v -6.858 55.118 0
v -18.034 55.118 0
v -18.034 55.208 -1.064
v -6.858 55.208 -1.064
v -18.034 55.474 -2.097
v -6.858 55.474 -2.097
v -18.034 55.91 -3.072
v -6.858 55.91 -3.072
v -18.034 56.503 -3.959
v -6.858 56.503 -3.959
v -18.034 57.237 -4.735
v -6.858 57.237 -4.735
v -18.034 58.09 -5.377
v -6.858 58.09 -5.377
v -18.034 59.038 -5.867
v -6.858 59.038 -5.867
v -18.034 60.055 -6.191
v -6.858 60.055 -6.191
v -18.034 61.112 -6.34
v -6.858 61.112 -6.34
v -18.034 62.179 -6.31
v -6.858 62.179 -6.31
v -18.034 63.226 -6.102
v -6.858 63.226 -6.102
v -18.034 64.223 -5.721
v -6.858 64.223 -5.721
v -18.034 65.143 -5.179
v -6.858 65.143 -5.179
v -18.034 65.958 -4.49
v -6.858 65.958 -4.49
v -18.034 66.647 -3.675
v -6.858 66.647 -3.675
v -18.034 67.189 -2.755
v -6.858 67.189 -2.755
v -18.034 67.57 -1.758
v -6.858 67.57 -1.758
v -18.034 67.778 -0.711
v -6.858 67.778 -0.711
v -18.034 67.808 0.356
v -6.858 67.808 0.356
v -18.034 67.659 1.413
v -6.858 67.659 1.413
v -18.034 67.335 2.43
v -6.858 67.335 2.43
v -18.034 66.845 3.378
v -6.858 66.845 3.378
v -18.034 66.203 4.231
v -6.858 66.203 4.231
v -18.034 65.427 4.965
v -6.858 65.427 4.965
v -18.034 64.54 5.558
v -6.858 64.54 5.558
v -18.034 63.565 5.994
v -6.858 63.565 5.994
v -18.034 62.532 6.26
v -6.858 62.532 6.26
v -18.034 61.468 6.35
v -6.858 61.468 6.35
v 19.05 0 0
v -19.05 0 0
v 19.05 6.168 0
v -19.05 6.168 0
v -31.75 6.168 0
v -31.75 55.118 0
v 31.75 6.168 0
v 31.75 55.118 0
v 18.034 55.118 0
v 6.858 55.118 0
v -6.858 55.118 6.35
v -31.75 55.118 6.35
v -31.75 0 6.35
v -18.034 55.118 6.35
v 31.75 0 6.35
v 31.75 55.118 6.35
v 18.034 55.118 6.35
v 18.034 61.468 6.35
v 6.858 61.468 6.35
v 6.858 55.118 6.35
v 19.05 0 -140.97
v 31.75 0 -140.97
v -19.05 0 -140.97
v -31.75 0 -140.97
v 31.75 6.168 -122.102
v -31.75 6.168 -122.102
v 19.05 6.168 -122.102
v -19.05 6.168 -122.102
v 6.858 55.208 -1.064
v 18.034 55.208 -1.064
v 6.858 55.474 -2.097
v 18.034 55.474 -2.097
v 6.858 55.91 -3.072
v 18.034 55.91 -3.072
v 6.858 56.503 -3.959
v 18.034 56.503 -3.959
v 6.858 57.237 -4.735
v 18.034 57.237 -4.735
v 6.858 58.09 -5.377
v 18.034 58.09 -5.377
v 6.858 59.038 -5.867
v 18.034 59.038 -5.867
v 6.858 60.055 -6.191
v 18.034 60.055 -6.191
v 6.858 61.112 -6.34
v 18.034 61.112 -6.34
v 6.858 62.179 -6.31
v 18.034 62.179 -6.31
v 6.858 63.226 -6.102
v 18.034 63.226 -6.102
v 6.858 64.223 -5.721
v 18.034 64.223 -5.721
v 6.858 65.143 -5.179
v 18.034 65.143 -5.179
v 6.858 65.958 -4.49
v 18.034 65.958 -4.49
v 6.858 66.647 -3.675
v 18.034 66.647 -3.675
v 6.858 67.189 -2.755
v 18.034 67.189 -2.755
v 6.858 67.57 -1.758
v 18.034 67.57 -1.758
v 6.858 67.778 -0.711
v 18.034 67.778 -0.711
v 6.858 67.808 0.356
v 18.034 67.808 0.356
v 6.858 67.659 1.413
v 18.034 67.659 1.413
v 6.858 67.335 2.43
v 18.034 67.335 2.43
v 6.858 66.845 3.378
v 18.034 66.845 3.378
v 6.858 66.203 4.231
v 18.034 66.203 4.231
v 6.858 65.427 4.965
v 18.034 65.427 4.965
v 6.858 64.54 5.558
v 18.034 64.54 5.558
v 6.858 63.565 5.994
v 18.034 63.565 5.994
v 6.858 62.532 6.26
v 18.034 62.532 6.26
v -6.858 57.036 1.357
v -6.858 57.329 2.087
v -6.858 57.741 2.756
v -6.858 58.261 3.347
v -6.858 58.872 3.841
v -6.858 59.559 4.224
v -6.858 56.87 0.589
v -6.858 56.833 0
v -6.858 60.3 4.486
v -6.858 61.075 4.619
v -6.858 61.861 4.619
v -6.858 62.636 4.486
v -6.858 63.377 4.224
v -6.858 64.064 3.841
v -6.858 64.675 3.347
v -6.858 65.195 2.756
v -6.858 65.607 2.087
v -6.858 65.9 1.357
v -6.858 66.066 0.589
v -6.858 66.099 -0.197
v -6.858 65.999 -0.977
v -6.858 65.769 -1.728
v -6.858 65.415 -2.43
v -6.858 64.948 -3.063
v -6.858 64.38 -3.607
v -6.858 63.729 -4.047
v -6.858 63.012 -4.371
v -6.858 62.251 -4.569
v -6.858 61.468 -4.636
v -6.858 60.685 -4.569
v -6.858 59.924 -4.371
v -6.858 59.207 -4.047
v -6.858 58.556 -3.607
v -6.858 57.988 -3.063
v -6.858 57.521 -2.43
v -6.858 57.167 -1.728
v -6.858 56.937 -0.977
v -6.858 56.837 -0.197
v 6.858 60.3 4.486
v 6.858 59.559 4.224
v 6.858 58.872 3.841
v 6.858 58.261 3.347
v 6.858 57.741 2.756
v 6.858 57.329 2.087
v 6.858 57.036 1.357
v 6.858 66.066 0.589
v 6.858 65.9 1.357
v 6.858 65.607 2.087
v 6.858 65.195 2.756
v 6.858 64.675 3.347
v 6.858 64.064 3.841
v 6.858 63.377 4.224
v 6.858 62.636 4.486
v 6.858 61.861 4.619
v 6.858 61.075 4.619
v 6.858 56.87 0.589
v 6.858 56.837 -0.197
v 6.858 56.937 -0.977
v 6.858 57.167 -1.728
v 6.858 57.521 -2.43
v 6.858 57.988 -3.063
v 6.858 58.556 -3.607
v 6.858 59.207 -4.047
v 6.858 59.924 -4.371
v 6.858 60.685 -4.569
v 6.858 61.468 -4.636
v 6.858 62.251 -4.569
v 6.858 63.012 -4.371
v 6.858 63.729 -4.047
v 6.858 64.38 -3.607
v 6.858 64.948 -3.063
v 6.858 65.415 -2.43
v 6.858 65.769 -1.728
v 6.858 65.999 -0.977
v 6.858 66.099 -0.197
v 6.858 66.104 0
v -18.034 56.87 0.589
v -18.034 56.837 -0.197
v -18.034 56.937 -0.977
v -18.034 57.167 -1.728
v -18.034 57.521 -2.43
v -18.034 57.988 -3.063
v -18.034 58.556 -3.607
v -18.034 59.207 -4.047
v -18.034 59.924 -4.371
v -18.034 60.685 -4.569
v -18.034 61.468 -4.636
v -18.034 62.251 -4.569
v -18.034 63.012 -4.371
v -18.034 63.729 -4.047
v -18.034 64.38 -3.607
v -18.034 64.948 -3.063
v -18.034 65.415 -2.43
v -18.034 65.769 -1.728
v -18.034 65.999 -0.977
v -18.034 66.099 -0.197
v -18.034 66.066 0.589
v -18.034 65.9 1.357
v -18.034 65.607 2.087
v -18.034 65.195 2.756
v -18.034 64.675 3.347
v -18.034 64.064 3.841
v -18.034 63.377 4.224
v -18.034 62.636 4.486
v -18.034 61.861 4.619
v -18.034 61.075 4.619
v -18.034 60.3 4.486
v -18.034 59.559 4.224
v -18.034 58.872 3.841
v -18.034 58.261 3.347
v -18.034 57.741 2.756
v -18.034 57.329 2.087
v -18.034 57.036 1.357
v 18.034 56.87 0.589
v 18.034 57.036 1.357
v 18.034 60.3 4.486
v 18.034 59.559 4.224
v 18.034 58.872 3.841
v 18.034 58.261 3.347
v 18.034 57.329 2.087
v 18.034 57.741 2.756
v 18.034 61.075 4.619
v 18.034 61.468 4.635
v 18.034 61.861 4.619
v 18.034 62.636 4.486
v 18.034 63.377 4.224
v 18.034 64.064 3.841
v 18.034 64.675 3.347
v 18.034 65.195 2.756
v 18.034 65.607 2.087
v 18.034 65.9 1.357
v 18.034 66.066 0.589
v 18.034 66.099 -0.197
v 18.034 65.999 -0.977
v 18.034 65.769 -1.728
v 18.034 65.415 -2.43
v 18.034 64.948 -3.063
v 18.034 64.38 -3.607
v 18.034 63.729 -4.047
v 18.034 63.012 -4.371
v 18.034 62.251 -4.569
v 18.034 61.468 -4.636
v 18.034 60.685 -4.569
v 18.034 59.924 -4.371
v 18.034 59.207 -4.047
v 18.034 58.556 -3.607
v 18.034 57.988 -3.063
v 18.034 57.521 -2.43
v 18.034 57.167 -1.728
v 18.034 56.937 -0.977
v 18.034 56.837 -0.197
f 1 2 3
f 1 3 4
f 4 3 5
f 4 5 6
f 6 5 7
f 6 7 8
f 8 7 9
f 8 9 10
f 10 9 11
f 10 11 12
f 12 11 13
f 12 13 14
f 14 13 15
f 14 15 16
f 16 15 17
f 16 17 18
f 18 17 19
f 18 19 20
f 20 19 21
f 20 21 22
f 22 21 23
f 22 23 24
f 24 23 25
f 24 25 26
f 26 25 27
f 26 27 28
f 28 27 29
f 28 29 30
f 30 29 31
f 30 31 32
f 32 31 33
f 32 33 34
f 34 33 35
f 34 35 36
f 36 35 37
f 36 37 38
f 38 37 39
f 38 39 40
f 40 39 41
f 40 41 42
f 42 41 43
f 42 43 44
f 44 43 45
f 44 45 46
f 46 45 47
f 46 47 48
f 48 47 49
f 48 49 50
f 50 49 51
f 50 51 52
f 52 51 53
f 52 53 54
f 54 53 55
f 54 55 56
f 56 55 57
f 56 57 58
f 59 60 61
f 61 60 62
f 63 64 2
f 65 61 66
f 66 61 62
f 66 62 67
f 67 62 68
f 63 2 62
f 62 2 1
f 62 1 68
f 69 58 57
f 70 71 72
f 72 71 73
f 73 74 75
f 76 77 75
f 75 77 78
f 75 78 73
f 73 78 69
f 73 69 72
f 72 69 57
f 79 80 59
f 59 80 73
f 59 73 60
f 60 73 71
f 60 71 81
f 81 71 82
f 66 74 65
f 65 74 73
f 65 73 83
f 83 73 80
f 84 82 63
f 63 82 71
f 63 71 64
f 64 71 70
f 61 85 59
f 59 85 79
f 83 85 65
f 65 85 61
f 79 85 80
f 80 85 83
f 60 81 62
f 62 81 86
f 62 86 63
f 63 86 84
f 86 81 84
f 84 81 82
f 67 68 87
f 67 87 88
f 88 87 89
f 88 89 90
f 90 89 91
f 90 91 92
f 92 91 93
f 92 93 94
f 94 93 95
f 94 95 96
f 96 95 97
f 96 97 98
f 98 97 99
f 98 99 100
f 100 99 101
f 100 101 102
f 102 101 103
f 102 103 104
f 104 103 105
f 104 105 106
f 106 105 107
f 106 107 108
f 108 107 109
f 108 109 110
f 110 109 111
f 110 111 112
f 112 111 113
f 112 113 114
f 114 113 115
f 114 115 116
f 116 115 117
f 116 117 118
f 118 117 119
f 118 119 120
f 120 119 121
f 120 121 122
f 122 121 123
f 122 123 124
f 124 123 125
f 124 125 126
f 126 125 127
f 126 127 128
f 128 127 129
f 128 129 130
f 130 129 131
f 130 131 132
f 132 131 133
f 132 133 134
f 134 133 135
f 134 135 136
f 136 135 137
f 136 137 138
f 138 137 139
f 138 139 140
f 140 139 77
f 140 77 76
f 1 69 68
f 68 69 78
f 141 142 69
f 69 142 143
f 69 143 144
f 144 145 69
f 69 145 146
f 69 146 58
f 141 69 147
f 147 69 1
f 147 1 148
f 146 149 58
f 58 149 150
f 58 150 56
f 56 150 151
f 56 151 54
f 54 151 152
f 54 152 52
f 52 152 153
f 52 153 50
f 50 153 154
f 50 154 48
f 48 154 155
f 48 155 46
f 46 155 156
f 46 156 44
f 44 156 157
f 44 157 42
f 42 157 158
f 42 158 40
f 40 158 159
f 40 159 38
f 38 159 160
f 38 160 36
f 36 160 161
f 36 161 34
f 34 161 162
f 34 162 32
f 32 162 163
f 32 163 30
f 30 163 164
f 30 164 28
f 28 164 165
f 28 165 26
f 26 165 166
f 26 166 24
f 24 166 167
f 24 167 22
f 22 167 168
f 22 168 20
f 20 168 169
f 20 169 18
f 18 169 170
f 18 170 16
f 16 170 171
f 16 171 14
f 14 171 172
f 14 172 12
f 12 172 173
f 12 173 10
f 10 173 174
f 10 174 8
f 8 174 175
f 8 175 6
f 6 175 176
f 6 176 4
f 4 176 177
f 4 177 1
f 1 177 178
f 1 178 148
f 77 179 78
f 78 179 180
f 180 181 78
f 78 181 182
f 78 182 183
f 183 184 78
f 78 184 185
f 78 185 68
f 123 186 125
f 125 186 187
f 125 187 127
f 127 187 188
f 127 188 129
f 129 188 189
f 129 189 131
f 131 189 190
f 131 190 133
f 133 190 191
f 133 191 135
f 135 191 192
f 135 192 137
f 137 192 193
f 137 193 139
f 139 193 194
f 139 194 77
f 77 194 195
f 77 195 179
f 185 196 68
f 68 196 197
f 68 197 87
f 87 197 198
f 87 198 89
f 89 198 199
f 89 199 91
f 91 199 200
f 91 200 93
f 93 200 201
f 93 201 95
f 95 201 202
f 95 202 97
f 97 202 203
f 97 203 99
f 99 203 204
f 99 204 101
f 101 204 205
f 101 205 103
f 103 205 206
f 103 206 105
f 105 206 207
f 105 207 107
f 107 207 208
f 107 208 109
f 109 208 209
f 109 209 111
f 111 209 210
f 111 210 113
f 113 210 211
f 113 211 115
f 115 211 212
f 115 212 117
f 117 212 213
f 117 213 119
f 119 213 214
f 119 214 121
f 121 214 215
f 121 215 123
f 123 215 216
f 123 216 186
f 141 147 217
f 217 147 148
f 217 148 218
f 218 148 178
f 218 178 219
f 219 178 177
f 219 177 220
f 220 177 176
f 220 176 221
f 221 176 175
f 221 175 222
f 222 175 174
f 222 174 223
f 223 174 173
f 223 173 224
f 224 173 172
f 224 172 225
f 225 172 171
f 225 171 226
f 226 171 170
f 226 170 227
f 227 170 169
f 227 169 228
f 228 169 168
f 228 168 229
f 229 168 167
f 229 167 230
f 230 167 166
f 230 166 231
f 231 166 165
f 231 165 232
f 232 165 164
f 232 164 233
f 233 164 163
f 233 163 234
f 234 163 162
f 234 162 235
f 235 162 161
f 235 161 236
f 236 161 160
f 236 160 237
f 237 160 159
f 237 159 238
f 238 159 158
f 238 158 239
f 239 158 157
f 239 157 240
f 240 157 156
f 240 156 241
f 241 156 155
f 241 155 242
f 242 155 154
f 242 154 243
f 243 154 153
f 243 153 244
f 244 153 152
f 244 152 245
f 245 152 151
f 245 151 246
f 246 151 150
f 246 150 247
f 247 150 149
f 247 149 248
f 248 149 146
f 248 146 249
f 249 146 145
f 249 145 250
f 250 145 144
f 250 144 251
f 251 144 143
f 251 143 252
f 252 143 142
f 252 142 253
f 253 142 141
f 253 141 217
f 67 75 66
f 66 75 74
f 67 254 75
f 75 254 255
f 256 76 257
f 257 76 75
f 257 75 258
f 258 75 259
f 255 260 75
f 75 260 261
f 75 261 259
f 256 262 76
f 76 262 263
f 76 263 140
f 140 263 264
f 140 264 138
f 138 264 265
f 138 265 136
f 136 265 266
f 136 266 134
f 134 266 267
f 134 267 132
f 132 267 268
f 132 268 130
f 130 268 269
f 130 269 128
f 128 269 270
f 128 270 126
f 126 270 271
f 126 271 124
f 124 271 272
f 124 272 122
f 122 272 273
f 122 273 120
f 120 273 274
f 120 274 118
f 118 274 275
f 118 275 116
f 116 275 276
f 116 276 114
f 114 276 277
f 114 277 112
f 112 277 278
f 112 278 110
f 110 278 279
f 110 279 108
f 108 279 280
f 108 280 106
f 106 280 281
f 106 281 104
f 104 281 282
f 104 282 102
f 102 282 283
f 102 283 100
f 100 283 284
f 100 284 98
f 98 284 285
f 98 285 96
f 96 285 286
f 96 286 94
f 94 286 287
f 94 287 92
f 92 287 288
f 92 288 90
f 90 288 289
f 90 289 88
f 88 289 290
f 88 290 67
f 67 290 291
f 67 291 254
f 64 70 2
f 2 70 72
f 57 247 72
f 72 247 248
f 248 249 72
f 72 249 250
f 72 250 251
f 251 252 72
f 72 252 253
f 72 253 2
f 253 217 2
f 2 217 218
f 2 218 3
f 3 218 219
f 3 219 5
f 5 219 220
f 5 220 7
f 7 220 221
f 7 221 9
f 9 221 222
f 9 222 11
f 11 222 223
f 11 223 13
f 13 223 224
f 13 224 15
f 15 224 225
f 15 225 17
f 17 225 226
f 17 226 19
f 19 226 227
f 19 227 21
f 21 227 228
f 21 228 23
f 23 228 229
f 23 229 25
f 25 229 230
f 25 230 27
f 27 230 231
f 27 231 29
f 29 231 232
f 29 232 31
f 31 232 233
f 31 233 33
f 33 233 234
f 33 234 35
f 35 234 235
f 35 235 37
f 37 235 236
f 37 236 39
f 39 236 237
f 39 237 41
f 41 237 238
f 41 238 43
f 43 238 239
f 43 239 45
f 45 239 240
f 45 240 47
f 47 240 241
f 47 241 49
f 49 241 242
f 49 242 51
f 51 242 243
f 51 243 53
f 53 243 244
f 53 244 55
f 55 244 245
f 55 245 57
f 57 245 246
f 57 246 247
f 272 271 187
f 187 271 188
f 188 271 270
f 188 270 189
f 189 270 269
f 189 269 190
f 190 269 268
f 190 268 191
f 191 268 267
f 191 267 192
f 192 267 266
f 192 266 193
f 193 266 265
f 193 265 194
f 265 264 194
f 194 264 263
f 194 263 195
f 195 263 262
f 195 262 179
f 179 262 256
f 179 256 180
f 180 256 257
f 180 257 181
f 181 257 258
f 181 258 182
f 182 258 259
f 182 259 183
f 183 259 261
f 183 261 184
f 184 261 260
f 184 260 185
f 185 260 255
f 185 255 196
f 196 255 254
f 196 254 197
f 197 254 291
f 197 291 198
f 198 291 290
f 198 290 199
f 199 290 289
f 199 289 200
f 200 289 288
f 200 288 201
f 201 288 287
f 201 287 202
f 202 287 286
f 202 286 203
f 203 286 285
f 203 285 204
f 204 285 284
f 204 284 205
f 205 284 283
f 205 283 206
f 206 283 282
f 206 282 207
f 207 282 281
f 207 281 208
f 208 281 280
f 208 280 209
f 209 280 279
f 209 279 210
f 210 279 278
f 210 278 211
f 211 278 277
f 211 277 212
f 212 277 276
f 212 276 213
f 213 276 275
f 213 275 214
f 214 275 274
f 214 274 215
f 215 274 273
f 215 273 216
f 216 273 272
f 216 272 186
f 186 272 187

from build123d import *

# Parameters (mm, degrees)
SKETCH1_W               = 6.35
SKETCH1_H               = 61.468
BOSS_EXTRUDE1_DEPTH     = 31.75
BOSS_EXTRUDE2_DEPTH     = 12.7
SKETCH7_R               = 6.35
SKETCH8_R               = 4.6355
CUT_EXTRUDE1_DEPTH      = 169.831490025
CUT_EXTRUDE2_DEPTH      = 166.258966546
CUT_EXTRUDE2_DEPTH_BACK = 166.258966546
SKETCH12_W              = 13.716
SKETCH12_H              = 12.7


with BuildPart() as part:
    # Sketch1 → Boss-Extrude1 (new, symmetric)
    with BuildSketch(Plane(origin=(0, 0, 0), x_dir=(0, 0, -1), z_dir=(1, 0, 0))):
        with Locations((-3.175, 30.734)):
            Rectangle(SKETCH1_W, SKETCH1_H)
    extrude(amount=BOSS_EXTRUDE1_DEPTH, both=True)

    # Sketch4 → Boss-Extrude2 (add)
    with BuildSketch(Plane(origin=(31.75, 0, 0), x_dir=(0, 0, -1), z_dir=(1, 0, 0))):
        Polygon((-6.35, 0), (140.97, 0), (122.101981581, 6.168018419), (-6.35, 6.168018419), align=None)
    boss_extrude2 = extrude(amount=-BOSS_EXTRUDE2_DEPTH)

    # Mirror1: Boss-Extrude2 across plane
    add(boss_extrude2.mirror(Plane(origin=(0, 0, 0), x_dir=(0, 0, 1), z_dir=(1, 0, 0))))

    # Sweep1: sweep along a curve in space
    with BuildLine() as sweep1_path:
        Line((31.75, 61.468, 0), (-31.75, 61.468, 0))
    # Sketch7 → Sweep1 (sweep)
    with BuildSketch(Plane(origin=(31.75, 0, 0), x_dir=(0, 0, -1), z_dir=(1, 0, 0))):
        with Locations((0, 61.468)):
            Circle(SKETCH7_R)
    sweep(path=sweep1_path.line)

    # Sketch8 → Cut-Extrude1 (cut, through all)
    with BuildSketch(Plane(origin=(31.75, 0, 0), x_dir=(0, 0, -1), z_dir=(1, 0, 0))):
        with Locations((0, 61.468)):
            Circle(SKETCH8_R)
    extrude(amount=-CUT_EXTRUDE1_DEPTH, mode=Mode.SUBTRACT)

    # Sketch12 → Cut-Extrude2 (cut, two sides: drawn at the far end of the back side and taken through both)
    with BuildSketch(Plane.XY.offset(6.35).offset(-CUT_EXTRUDE2_DEPTH_BACK)):
        with Locations((-24.892, 61.468)):
            Rectangle(SKETCH12_W, SKETCH12_H)
        with Locations((24.892, 61.468)):
            Rectangle(SKETCH12_W, SKETCH12_H)
        with Locations((0, 61.468)):
            Rectangle(SKETCH12_W, SKETCH12_H)
    extrude(amount=CUT_EXTRUDE2_DEPTH + CUT_EXTRUDE2_DEPTH_BACK, mode=Mode.SUBTRACT)


solid = part.part
